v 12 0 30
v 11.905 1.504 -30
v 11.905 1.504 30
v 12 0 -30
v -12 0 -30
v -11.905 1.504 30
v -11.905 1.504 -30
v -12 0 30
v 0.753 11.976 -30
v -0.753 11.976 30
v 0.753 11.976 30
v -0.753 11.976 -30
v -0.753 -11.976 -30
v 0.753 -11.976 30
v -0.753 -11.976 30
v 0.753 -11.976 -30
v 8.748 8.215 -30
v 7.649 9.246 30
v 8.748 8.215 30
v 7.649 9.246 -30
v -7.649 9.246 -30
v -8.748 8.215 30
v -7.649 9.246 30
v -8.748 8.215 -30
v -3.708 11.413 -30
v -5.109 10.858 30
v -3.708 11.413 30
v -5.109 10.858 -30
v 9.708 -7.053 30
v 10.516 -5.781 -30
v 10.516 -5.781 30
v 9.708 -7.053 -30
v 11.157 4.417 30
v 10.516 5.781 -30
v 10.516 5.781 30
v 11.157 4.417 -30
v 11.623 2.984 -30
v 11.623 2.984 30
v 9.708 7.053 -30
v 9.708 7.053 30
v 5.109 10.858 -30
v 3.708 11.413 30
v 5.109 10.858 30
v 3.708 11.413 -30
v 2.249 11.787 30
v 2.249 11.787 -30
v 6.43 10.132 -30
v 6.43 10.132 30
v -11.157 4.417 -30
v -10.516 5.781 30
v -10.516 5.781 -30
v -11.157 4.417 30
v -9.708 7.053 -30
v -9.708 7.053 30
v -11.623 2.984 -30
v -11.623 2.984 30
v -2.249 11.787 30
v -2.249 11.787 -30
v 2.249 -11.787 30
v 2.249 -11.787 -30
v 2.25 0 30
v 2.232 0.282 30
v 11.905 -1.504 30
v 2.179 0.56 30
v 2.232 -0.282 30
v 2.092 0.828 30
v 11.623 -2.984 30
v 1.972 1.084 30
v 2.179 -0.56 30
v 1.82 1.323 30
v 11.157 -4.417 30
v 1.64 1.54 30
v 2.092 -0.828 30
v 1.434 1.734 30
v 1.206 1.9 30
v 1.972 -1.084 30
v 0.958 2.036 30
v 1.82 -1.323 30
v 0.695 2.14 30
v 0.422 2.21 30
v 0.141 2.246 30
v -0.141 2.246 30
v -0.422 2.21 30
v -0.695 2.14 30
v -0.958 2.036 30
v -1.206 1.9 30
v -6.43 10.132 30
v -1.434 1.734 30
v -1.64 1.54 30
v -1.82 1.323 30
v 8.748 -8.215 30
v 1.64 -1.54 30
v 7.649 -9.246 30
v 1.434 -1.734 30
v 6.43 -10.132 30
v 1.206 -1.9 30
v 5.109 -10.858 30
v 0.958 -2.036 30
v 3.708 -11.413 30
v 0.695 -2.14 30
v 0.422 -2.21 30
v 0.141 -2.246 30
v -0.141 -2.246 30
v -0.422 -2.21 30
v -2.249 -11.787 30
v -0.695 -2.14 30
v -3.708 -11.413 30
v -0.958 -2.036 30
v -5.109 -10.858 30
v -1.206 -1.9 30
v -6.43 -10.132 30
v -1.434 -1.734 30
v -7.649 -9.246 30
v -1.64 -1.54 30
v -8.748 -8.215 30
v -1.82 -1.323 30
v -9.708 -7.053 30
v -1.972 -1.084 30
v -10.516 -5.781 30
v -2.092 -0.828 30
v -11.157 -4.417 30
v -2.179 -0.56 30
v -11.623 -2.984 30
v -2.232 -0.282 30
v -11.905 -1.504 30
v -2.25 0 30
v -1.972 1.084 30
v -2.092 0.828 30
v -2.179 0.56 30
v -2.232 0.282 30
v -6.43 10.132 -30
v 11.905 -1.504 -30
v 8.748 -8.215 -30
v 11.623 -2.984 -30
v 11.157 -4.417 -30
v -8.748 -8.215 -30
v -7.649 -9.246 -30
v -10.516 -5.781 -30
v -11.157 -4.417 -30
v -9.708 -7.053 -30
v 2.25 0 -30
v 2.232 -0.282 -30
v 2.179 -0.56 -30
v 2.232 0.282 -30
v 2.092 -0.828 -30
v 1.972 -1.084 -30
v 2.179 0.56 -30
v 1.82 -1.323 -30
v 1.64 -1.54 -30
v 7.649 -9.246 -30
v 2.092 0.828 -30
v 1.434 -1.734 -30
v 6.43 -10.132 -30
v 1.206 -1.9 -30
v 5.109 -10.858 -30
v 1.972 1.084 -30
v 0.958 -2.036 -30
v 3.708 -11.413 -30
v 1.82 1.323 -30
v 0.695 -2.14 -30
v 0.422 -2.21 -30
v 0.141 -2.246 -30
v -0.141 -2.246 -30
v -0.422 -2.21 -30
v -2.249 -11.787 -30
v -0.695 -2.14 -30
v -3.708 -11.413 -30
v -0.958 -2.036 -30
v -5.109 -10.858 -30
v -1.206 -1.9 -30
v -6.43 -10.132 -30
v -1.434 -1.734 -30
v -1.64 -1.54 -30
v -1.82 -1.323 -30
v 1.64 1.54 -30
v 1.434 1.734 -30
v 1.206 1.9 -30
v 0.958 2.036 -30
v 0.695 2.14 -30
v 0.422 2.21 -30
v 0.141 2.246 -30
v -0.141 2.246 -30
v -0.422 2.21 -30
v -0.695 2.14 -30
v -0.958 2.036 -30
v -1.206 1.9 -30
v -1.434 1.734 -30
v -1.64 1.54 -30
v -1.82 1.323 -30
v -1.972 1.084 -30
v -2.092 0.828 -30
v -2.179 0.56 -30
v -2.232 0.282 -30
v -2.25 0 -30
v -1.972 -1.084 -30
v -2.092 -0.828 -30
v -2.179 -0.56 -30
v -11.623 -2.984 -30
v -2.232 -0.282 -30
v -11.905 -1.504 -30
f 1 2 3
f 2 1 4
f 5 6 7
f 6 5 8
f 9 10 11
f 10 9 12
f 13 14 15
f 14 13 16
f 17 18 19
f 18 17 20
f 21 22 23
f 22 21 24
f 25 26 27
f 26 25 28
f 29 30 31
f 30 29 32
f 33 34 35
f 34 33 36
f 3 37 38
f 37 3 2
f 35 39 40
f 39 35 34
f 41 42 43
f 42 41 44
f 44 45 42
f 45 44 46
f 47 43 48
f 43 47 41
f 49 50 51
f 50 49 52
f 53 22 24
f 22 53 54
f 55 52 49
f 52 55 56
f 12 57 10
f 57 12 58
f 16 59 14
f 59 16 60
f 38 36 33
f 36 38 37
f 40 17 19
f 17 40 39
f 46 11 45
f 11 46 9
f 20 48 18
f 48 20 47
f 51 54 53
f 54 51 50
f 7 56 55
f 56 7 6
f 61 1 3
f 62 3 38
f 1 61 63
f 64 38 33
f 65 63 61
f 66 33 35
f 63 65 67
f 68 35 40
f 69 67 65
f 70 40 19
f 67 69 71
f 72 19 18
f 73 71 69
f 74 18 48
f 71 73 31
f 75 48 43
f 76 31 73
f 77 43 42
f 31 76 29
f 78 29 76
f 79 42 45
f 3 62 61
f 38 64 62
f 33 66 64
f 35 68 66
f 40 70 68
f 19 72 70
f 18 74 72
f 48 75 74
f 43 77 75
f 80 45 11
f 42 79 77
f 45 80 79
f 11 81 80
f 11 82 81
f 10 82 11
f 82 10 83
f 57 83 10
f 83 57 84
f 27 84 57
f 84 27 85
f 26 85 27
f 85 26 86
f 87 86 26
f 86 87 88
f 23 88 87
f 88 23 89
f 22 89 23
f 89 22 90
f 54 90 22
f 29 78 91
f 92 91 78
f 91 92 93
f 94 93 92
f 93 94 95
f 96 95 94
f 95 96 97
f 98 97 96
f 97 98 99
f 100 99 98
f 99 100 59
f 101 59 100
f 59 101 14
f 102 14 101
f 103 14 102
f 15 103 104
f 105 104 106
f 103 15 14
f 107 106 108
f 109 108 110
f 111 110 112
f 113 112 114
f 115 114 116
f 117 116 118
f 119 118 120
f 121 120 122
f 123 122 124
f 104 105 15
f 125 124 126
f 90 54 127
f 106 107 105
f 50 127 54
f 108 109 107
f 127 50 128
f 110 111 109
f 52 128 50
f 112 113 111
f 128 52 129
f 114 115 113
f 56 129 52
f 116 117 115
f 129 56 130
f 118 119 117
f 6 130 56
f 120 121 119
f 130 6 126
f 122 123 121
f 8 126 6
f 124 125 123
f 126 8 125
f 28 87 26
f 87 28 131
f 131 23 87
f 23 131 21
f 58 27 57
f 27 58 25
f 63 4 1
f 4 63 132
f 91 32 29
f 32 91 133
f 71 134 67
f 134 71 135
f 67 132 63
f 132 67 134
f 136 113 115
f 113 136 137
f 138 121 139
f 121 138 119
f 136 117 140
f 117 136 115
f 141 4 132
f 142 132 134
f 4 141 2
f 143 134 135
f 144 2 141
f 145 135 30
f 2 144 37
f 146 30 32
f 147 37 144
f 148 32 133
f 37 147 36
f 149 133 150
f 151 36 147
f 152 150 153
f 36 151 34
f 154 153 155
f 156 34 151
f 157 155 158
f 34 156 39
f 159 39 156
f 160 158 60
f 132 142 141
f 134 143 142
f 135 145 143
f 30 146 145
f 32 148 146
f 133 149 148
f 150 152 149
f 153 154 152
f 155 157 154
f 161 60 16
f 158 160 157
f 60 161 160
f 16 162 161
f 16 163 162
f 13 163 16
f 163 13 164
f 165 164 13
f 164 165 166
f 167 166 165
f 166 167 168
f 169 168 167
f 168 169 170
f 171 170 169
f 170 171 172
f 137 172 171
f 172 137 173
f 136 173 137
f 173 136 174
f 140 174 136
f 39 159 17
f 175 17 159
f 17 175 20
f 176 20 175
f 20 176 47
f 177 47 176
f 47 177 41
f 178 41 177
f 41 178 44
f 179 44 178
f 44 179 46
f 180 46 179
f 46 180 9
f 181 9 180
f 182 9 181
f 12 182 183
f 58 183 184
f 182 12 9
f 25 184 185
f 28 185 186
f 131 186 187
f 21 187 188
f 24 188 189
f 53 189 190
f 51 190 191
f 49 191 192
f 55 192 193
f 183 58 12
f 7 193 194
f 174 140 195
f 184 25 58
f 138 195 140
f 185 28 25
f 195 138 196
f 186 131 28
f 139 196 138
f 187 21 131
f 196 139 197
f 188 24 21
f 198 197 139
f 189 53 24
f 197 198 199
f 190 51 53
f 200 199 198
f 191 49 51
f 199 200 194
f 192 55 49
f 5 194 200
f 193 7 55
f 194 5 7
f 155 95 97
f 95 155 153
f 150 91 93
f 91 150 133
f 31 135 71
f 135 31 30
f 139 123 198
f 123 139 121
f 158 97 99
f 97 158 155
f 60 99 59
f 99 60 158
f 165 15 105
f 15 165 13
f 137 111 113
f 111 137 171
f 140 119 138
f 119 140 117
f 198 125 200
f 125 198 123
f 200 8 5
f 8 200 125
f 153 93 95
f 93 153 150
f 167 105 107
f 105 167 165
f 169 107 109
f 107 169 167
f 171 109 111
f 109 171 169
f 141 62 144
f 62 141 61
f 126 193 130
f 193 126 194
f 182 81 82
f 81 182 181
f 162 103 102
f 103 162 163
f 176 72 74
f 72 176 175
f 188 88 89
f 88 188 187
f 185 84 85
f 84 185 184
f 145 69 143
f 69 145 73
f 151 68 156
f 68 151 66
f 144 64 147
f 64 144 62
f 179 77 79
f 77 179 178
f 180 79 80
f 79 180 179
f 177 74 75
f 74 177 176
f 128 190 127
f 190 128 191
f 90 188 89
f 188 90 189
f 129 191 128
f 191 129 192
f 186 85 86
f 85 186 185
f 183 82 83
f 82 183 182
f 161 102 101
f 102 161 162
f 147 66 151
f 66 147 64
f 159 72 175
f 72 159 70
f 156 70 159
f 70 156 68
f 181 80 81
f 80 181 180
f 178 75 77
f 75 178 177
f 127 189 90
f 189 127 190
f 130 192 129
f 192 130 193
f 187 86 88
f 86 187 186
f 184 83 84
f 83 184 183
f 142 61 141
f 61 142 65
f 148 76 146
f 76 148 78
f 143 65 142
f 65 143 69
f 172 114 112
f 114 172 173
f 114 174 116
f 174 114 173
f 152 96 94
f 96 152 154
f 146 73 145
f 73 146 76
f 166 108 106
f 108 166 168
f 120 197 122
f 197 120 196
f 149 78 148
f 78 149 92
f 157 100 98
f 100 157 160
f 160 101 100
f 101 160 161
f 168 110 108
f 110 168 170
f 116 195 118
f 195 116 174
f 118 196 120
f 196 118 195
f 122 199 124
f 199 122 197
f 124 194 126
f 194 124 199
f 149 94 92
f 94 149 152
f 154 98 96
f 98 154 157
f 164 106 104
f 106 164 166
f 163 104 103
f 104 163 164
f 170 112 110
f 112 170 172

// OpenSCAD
$fn = 50;


difference() {
	union() {
		translate(v = [0, 0, -30.0000000000]) {
			cylinder(h = 60, r = 12.0000000000);
		}
	}
	union() {
		translate(v = [0, 0, -100.0000000000]) {
			cylinder(h = 200, r = 2.2500000000);
		}
	}
}
